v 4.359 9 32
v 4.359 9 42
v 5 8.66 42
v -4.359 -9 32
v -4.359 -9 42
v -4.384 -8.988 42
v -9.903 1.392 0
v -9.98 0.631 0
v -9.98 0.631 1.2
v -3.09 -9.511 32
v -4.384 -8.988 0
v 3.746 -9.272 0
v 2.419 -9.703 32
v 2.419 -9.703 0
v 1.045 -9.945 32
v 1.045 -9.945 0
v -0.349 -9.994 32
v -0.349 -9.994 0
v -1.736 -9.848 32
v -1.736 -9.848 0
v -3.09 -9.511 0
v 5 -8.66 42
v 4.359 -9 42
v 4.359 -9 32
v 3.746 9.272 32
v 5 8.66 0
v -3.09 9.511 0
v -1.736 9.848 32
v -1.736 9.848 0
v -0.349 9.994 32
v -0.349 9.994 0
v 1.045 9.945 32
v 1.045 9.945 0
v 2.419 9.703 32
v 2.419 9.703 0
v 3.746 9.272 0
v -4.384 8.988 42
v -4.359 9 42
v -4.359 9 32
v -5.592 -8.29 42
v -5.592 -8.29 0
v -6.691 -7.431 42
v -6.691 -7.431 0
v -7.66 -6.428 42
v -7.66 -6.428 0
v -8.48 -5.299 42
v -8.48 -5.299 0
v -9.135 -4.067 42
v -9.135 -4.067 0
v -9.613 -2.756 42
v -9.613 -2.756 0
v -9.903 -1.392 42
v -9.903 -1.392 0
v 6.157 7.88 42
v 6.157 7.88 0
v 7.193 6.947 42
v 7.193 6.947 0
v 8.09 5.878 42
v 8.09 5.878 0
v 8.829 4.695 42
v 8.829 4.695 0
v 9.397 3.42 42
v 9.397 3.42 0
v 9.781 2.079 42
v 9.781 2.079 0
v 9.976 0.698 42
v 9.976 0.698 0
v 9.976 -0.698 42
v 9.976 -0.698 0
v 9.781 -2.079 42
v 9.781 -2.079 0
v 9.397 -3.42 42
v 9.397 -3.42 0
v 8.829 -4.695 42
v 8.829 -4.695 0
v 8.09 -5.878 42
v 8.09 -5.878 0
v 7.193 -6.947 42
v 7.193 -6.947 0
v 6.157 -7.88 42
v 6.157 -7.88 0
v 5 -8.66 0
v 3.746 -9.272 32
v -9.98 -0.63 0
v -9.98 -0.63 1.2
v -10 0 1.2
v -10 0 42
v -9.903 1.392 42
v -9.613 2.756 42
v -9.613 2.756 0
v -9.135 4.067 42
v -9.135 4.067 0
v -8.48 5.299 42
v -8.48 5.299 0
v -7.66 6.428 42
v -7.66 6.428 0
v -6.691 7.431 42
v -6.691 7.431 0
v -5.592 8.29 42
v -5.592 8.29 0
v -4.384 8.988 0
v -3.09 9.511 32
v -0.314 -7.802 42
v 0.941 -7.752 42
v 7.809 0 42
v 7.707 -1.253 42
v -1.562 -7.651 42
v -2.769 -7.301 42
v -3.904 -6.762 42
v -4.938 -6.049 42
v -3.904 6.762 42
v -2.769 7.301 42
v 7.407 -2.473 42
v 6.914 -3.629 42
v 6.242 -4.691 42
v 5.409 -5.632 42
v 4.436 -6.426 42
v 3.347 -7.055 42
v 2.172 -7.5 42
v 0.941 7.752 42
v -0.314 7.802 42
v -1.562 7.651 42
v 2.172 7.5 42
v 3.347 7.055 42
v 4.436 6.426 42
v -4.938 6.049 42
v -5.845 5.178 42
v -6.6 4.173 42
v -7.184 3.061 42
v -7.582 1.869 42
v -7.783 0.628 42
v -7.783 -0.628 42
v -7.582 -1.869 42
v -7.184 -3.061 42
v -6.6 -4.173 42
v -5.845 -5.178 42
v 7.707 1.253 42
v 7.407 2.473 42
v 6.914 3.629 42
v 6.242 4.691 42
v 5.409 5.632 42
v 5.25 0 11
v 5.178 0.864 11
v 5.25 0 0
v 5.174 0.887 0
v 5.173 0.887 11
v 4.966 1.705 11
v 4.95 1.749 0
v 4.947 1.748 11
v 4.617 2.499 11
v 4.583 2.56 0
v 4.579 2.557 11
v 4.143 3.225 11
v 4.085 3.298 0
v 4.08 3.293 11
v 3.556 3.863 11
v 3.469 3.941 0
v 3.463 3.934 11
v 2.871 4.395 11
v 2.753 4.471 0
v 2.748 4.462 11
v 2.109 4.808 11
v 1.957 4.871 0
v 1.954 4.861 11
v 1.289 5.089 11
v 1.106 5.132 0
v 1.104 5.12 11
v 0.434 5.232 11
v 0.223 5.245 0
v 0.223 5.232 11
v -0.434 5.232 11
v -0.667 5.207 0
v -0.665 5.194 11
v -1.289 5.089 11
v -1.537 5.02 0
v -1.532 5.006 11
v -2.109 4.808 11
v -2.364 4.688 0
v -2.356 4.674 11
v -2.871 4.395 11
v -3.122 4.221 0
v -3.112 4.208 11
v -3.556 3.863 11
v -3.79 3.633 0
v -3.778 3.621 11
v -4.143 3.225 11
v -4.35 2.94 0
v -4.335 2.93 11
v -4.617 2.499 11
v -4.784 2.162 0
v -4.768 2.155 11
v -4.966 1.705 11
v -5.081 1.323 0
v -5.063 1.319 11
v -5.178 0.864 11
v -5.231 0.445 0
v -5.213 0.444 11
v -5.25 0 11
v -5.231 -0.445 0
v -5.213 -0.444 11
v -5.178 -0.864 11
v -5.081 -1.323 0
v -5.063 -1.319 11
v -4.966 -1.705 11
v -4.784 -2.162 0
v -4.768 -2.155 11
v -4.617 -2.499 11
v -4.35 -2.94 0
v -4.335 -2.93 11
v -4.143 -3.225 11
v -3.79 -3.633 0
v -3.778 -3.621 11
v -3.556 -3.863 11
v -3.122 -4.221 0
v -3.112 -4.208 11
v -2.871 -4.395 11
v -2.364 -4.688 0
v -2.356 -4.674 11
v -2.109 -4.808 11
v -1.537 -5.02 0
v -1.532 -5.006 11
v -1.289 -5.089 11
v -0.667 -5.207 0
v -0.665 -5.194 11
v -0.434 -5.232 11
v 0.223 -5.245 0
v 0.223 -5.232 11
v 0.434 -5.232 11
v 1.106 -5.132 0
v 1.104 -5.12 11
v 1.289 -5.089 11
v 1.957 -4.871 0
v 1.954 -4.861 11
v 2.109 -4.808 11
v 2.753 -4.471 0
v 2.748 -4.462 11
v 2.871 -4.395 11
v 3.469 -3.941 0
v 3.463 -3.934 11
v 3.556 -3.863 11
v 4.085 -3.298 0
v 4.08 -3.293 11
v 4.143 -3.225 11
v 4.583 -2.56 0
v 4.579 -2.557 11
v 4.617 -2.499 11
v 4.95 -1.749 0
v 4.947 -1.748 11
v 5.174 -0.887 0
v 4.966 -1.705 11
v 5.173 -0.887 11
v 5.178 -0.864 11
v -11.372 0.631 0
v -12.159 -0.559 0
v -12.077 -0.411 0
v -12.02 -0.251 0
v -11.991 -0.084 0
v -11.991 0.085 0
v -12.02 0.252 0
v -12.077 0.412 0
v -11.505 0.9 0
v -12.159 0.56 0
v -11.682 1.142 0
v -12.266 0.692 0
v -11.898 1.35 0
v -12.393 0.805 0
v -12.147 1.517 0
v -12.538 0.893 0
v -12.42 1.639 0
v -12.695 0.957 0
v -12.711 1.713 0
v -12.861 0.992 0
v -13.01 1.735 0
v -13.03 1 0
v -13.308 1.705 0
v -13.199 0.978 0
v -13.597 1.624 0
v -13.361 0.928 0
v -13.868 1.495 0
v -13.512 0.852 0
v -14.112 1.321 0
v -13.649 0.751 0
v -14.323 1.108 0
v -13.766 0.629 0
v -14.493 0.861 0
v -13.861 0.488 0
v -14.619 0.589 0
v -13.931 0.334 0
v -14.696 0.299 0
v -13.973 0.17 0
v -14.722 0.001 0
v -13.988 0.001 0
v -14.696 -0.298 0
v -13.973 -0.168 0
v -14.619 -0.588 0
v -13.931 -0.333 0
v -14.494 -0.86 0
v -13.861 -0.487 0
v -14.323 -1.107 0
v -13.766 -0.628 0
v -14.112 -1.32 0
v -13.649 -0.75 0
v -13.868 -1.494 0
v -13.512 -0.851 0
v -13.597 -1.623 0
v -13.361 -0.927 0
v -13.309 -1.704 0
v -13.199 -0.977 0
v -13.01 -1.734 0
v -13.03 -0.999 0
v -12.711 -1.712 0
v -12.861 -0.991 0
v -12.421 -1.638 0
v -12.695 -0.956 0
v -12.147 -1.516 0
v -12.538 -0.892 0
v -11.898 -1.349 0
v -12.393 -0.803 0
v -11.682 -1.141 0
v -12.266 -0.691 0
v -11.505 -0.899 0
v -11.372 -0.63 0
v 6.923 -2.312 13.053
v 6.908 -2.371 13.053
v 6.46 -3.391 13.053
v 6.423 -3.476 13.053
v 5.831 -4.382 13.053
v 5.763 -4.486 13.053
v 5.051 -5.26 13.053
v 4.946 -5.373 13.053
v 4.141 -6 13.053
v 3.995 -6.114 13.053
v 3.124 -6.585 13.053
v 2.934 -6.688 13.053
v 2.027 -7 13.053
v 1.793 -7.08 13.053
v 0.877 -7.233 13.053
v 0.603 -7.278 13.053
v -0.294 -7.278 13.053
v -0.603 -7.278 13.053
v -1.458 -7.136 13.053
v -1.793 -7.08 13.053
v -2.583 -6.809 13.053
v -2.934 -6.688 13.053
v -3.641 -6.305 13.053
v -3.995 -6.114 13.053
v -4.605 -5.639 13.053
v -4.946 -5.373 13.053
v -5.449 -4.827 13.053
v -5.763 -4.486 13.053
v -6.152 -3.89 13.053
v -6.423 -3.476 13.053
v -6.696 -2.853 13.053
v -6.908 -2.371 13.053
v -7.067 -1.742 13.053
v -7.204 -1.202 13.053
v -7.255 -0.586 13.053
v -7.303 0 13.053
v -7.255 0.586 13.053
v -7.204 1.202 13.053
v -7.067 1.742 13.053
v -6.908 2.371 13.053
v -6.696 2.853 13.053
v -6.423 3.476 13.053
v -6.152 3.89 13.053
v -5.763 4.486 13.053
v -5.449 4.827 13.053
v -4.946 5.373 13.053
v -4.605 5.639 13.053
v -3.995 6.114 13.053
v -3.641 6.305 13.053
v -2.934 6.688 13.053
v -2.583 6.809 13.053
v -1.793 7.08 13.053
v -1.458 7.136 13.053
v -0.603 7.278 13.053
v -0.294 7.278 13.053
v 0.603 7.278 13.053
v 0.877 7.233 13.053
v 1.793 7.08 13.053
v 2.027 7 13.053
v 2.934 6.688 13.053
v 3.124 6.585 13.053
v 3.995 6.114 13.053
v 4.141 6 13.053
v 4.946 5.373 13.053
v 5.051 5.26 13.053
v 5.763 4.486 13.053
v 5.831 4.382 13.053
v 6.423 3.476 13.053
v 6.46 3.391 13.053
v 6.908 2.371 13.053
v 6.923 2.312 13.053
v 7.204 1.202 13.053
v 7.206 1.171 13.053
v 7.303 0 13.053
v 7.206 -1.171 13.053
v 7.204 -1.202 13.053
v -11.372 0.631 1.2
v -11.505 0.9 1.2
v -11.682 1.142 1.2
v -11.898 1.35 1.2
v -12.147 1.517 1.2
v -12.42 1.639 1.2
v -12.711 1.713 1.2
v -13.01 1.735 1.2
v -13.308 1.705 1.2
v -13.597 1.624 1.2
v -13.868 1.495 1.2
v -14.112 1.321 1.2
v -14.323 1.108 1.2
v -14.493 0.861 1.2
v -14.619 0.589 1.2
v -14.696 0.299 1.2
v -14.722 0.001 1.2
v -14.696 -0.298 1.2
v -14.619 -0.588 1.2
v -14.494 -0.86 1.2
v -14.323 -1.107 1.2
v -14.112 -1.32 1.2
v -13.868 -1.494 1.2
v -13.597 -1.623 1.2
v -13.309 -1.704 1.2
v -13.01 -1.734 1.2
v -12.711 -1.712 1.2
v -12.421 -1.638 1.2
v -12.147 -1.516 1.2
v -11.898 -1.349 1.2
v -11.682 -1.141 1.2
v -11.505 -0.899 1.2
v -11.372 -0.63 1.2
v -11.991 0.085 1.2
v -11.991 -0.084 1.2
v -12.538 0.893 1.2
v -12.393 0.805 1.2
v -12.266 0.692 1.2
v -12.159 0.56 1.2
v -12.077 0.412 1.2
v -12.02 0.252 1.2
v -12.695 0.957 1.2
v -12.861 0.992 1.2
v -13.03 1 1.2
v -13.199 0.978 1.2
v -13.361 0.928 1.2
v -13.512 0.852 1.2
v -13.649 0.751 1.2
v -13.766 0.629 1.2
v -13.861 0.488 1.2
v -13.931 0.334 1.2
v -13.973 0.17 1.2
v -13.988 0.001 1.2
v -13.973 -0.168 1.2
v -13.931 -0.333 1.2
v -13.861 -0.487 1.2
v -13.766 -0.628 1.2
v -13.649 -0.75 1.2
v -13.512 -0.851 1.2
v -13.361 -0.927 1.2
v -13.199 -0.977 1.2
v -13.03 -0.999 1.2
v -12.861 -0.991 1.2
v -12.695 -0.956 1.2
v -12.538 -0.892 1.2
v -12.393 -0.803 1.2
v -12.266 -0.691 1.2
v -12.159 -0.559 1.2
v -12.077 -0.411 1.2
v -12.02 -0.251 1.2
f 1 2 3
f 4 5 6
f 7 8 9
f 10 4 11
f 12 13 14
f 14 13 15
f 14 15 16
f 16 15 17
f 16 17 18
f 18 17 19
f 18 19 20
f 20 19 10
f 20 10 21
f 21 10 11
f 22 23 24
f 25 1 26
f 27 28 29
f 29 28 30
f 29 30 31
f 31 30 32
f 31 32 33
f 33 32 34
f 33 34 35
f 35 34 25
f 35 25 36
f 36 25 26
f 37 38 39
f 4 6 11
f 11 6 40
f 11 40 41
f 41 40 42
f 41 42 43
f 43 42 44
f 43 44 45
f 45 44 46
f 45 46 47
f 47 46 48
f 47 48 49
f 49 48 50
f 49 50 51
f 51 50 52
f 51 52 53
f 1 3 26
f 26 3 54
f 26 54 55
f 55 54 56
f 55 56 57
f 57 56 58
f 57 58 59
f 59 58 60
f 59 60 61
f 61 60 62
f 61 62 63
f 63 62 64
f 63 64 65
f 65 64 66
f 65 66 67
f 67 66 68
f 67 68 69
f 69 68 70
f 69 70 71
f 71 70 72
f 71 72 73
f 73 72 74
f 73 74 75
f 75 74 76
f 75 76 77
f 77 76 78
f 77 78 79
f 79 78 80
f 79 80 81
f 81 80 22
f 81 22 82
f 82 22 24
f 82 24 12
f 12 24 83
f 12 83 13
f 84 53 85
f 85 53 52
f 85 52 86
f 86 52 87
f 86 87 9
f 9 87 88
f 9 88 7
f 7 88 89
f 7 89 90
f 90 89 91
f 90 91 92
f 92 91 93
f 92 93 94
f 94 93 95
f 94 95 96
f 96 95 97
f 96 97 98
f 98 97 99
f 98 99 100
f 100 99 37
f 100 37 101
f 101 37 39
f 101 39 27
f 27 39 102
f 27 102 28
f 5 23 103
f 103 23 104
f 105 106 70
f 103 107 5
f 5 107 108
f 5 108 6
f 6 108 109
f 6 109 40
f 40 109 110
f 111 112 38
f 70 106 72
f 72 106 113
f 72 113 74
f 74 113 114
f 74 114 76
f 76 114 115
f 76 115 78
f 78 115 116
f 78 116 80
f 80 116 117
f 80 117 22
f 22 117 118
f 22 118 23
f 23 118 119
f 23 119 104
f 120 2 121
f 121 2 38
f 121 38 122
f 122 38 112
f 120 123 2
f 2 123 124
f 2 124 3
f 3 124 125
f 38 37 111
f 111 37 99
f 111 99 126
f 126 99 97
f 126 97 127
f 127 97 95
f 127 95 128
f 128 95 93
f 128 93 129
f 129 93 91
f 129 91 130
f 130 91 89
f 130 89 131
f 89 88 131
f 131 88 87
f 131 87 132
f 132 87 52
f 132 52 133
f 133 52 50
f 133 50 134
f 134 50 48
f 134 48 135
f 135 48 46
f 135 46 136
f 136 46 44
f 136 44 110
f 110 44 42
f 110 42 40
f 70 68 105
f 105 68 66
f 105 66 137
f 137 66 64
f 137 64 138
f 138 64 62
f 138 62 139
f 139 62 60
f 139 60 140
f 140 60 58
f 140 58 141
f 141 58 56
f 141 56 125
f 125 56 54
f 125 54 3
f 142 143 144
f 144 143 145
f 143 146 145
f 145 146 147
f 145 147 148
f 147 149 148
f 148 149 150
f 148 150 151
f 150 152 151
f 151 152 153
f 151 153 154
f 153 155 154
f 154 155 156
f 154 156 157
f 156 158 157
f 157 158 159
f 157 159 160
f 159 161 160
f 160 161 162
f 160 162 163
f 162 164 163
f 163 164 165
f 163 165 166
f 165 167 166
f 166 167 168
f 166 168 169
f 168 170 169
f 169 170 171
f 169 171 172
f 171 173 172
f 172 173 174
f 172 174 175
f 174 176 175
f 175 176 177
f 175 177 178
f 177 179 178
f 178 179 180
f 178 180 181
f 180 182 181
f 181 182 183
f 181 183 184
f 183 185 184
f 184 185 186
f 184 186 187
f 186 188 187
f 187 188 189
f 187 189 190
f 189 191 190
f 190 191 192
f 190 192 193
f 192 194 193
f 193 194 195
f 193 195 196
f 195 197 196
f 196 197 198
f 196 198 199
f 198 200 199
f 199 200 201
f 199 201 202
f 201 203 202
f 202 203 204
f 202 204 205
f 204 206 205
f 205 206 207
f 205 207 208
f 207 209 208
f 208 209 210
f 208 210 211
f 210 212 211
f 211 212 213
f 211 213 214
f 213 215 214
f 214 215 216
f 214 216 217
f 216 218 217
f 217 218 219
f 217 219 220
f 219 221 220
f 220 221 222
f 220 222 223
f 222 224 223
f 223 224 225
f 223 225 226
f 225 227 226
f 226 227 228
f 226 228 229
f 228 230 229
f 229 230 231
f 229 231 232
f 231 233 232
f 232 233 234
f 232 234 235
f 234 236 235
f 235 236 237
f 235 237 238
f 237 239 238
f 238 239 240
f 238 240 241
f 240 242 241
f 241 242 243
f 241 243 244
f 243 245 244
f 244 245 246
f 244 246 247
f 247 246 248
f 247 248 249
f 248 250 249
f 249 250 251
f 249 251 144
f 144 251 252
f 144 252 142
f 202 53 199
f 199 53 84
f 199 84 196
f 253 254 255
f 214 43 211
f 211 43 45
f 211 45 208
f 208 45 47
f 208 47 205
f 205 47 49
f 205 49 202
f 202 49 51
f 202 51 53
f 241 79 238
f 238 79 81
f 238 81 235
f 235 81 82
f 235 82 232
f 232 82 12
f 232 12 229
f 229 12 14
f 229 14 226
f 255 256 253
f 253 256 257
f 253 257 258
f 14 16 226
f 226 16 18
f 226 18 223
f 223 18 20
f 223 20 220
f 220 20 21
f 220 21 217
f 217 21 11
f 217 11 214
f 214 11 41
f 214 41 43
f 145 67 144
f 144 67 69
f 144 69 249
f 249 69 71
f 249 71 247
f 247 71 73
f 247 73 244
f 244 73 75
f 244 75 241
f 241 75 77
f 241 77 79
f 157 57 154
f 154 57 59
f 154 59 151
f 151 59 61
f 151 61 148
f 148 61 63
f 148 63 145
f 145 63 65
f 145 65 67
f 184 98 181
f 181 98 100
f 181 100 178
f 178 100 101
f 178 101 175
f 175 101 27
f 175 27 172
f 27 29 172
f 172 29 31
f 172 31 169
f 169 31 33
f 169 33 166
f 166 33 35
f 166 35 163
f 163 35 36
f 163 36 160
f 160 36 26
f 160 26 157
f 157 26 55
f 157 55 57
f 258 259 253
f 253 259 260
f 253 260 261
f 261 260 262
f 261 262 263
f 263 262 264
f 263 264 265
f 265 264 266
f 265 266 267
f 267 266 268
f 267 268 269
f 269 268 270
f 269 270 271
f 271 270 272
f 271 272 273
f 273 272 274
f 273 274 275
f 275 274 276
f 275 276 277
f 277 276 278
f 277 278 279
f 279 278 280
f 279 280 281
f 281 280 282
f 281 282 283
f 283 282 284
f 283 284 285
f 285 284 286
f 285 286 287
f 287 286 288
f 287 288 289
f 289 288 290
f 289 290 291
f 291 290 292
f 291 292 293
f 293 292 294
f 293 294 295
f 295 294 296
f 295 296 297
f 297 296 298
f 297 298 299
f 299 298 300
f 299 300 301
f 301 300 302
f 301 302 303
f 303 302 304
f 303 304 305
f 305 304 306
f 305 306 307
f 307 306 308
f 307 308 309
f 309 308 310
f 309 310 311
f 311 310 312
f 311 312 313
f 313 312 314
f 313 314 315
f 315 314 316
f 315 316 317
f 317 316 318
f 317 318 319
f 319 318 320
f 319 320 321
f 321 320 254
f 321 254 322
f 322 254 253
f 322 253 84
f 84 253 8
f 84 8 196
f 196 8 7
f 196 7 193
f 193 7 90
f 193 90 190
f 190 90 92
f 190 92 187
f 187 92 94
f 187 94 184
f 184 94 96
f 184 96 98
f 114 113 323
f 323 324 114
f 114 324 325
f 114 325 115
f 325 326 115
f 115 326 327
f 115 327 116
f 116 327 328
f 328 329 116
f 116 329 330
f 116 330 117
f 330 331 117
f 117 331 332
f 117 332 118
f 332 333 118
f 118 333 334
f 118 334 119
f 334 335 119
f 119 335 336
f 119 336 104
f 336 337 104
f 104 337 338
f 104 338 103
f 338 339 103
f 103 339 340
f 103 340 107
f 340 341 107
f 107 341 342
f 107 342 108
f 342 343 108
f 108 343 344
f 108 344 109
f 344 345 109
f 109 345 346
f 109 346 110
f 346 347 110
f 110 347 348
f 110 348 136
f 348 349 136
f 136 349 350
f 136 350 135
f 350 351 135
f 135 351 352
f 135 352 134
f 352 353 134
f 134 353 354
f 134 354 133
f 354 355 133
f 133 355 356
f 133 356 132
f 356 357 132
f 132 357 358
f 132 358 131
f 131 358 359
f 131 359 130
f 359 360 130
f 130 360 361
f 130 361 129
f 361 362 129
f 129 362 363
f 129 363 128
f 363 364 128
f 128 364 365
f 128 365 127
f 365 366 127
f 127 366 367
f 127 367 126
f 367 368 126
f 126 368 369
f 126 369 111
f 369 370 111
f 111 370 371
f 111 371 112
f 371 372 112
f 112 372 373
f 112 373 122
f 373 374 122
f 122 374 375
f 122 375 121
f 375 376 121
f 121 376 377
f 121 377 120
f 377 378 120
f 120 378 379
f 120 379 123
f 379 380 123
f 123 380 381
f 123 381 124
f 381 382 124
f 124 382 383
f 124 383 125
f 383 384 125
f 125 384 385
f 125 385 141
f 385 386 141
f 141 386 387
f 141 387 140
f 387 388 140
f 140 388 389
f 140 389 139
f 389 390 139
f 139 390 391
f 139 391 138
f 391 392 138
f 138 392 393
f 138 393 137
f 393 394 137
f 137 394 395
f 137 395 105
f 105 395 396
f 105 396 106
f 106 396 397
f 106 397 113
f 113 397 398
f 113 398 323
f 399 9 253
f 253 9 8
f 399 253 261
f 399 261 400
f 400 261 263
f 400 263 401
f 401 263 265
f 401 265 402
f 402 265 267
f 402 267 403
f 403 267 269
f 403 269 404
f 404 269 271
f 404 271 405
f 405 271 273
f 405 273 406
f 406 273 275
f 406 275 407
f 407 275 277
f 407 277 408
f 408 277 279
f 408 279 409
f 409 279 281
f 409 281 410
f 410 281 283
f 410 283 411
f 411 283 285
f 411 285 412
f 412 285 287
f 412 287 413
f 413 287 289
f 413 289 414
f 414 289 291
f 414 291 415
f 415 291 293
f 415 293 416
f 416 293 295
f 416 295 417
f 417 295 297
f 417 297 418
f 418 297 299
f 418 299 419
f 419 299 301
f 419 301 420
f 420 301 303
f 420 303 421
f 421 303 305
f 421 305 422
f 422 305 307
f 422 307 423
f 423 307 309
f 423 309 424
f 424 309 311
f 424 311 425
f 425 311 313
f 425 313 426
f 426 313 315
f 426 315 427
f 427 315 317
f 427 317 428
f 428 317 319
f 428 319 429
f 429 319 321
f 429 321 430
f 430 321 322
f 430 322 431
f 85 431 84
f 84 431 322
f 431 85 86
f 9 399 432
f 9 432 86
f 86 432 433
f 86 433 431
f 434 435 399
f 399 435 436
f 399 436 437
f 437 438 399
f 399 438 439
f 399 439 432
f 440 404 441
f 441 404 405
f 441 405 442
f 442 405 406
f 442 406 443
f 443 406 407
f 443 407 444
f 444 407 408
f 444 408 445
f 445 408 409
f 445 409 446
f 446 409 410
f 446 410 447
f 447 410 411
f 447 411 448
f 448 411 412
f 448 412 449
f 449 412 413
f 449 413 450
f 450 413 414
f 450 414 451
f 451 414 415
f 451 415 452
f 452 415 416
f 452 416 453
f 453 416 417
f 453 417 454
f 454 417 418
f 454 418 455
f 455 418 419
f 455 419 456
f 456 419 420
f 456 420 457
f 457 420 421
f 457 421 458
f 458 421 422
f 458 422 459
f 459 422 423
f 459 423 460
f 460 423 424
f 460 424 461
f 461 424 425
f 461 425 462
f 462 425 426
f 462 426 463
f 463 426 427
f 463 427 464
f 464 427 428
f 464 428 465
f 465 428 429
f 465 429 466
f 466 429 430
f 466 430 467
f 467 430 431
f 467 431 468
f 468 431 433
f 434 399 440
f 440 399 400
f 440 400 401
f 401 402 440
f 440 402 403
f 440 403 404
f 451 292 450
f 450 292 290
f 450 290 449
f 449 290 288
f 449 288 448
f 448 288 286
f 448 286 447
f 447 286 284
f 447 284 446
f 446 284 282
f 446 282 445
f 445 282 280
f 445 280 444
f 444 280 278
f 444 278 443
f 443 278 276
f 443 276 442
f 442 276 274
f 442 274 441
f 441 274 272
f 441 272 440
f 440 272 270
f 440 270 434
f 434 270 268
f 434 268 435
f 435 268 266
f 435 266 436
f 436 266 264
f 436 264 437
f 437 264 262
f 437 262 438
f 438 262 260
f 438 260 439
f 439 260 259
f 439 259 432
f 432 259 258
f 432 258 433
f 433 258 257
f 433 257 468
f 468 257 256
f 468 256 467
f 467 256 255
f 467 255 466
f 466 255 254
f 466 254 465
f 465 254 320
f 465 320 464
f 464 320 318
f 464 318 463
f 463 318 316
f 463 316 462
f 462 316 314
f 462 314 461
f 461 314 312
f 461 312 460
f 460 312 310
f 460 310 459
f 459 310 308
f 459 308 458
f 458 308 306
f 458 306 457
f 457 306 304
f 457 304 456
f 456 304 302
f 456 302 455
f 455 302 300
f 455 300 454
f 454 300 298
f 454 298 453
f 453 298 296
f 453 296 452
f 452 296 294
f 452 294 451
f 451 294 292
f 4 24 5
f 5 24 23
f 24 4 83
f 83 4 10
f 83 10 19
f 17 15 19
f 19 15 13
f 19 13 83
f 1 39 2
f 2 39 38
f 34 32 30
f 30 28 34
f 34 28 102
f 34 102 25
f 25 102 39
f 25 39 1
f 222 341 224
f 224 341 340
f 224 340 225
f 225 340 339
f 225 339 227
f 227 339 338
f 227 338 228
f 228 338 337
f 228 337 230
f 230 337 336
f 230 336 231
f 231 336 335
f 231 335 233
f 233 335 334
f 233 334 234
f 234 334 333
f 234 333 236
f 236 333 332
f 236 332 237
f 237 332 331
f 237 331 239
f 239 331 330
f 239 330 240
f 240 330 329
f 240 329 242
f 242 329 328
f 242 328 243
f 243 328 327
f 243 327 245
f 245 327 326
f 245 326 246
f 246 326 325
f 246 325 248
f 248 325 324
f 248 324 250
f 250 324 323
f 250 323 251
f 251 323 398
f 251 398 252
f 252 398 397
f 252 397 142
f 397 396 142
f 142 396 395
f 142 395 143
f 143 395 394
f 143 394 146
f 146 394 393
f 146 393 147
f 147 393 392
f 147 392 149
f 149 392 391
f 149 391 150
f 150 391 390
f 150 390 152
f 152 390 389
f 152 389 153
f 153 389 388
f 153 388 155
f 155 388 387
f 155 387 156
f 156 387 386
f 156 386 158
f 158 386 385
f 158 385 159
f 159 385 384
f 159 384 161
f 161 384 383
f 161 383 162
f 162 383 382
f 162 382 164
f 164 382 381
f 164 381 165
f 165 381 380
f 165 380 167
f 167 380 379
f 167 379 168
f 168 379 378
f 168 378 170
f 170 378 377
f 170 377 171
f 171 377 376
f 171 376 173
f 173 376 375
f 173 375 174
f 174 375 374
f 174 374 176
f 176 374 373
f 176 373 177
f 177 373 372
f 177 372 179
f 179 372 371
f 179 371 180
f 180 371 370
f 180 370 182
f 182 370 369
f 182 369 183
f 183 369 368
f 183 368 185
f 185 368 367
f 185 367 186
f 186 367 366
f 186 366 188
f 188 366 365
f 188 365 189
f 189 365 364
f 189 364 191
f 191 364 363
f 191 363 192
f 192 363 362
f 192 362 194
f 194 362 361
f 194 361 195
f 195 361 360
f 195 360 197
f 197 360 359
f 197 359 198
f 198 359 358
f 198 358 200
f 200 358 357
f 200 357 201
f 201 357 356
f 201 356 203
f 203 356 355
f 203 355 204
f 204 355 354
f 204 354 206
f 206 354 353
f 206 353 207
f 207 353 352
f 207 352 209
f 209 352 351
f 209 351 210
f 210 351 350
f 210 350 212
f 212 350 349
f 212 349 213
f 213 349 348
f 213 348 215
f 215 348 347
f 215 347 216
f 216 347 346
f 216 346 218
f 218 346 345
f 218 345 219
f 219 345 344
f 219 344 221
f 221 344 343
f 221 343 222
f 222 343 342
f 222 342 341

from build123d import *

# Parameters (mm, degrees)
SKETCH1_R           = 10
BOSS_EXTRUDE1_DEPTH = 42
CUT_EXTRUDE1_REACH  = 46.317
SKETCH2_R           = 5.25
SKETCH3_R           = 7.25
CUT_EXTRUDE2_DEPTH  = 32
SKETCH4_R           = 1
SKETCH4_R_2         = 5.25
BOSS_EXTRUDE2_DEPTH = 1.2
CUT_EXTRUDE3_START  = -10
CUT_EXTRUDE3_DEPTH  = 10
DRAFT1_ANGLE        = 1
CHAMFER1_SIZE       = 3
CHAMFER1_SIZE_2     = 3.053760573


with BuildPart() as part:
    # Sketch1 → Boss-Extrude1 (new body)
    with BuildSketch(Plane.XY):
        with Locations(Location((0, 0, 0), (0, 0, 180))):
            Circle(SKETCH1_R)
    extrude(amount=BOSS_EXTRUDE1_DEPTH)

    # Sketch2 → Cut-Extrude1 (cut, up to next)
    with BuildSketch(Plane.XY.offset(42), mode=Mode.PRIVATE) as cut_extrude1_sk1:
        Circle(SKETCH2_R)
    cut_extrude1_tool1 = extrude(cut_extrude1_sk1.sketch, amount=-CUT_EXTRUDE1_REACH, mode=Mode.PRIVATE) & part.part
    add(cut_extrude1_tool1.solids().sort_by_distance((0, 0, 42))[0], mode=Mode.SUBTRACT)

    # Sketch3 → Cut-Extrude2 (cut)
    with BuildSketch(Plane.XY.offset(42)):
        Circle(SKETCH3_R)
    extrude(amount=-CUT_EXTRUDE2_DEPTH, mode=Mode.SUBTRACT)

    # Sketch4 → Boss-Extrude2 (add)
    with BuildSketch(Plane(origin=(0, 0, 0), x_dir=(-1, 0, 0), z_dir=(0, 0, -1))):
        with BuildLine():
            Line((9.98013969, -0.629929975), (11.372178356, -0.629929975))
            ThreePointArc((11.372178356, -0.629929975), (14.722138794, 0.000600368), (11.372121573, 0.630828953))
            Line((11.372121573, 0.630828953), (9.980082907, 0.630828953))
            ThreePointArc((9.980082907, 0.630828953), (-9.99999999, -0.000450385), (9.98013969, -0.629929975))
        make_face()
        with Locations((12.987833992, 0.000522257)):
            Circle(SKETCH4_R, mode=Mode.SUBTRACT)
        with Locations(Location((0, 0, 0), (0, 0, 180))):
            Circle(SKETCH4_R_2, mode=Mode.SUBTRACT)
    extrude(amount=-BOSS_EXTRUDE2_DEPTH)

    # Sketch5 → Cut-Extrude3 (cut)
    with BuildSketch(Plane.XY.offset(42).offset(CUT_EXTRUDE3_START)):
        with BuildLine():
            ThreePointArc((4.358898944, 9), (0, 10), (-4.358898944, 9))
            Line((-4.358898944, 9), (4.358898944, 9))
        make_face()
        with BuildLine():
            Line((4.358898944, -9), (-4.358898944, -9))
            ThreePointArc((-4.358898944, -9), (0, -10), (4.358898944, -9))
        make_face()
    extrude(amount=CUT_EXTRUDE3_DEPTH, mode=Mode.SUBTRACT)

    # Draft1
    draft1_faces = [part.faces().sort_by_distance(p)[0] for p in [
        (-7.25, 0, 26),
    ]]
    draft(draft1_faces, Plane.XY.offset(10), DRAFT1_ANGLE)

    # Chamfer1
    # the kernel refuses this chamfer: 3.053760573, 3 mm, written as the material it adds along each edge
    with BuildSketch(Plane(origin=(0, 0, 10), x_dir=(1, 0, 0), z_dir=(0, -1, 0))) as chamfer1_piece_1_section:
        Polygon((7.25 - CHAMFER1_SIZE, 0), (7.25 + CHAMFER1_SIZE_2 * 0.0174524064385, CHAMFER1_SIZE_2 * 0.999847695226), (7.25, 0), align=None)
    chamfer1_piece_1 = revolve(axis=Axis((0, 0, 10), (0, 0, 1)), mode=Mode.PRIVATE)
    chamfer1_piece_1 = chamfer1_piece_1 - Plane(origin=(0, 0, 12.029896957), x_dir=(1, 0, 0), z_dir=(0, 0, 1)) * Cylinder(5.25, 30, mode=Mode.PRIVATE)
    add(chamfer1_piece_1)


solid = part.part
